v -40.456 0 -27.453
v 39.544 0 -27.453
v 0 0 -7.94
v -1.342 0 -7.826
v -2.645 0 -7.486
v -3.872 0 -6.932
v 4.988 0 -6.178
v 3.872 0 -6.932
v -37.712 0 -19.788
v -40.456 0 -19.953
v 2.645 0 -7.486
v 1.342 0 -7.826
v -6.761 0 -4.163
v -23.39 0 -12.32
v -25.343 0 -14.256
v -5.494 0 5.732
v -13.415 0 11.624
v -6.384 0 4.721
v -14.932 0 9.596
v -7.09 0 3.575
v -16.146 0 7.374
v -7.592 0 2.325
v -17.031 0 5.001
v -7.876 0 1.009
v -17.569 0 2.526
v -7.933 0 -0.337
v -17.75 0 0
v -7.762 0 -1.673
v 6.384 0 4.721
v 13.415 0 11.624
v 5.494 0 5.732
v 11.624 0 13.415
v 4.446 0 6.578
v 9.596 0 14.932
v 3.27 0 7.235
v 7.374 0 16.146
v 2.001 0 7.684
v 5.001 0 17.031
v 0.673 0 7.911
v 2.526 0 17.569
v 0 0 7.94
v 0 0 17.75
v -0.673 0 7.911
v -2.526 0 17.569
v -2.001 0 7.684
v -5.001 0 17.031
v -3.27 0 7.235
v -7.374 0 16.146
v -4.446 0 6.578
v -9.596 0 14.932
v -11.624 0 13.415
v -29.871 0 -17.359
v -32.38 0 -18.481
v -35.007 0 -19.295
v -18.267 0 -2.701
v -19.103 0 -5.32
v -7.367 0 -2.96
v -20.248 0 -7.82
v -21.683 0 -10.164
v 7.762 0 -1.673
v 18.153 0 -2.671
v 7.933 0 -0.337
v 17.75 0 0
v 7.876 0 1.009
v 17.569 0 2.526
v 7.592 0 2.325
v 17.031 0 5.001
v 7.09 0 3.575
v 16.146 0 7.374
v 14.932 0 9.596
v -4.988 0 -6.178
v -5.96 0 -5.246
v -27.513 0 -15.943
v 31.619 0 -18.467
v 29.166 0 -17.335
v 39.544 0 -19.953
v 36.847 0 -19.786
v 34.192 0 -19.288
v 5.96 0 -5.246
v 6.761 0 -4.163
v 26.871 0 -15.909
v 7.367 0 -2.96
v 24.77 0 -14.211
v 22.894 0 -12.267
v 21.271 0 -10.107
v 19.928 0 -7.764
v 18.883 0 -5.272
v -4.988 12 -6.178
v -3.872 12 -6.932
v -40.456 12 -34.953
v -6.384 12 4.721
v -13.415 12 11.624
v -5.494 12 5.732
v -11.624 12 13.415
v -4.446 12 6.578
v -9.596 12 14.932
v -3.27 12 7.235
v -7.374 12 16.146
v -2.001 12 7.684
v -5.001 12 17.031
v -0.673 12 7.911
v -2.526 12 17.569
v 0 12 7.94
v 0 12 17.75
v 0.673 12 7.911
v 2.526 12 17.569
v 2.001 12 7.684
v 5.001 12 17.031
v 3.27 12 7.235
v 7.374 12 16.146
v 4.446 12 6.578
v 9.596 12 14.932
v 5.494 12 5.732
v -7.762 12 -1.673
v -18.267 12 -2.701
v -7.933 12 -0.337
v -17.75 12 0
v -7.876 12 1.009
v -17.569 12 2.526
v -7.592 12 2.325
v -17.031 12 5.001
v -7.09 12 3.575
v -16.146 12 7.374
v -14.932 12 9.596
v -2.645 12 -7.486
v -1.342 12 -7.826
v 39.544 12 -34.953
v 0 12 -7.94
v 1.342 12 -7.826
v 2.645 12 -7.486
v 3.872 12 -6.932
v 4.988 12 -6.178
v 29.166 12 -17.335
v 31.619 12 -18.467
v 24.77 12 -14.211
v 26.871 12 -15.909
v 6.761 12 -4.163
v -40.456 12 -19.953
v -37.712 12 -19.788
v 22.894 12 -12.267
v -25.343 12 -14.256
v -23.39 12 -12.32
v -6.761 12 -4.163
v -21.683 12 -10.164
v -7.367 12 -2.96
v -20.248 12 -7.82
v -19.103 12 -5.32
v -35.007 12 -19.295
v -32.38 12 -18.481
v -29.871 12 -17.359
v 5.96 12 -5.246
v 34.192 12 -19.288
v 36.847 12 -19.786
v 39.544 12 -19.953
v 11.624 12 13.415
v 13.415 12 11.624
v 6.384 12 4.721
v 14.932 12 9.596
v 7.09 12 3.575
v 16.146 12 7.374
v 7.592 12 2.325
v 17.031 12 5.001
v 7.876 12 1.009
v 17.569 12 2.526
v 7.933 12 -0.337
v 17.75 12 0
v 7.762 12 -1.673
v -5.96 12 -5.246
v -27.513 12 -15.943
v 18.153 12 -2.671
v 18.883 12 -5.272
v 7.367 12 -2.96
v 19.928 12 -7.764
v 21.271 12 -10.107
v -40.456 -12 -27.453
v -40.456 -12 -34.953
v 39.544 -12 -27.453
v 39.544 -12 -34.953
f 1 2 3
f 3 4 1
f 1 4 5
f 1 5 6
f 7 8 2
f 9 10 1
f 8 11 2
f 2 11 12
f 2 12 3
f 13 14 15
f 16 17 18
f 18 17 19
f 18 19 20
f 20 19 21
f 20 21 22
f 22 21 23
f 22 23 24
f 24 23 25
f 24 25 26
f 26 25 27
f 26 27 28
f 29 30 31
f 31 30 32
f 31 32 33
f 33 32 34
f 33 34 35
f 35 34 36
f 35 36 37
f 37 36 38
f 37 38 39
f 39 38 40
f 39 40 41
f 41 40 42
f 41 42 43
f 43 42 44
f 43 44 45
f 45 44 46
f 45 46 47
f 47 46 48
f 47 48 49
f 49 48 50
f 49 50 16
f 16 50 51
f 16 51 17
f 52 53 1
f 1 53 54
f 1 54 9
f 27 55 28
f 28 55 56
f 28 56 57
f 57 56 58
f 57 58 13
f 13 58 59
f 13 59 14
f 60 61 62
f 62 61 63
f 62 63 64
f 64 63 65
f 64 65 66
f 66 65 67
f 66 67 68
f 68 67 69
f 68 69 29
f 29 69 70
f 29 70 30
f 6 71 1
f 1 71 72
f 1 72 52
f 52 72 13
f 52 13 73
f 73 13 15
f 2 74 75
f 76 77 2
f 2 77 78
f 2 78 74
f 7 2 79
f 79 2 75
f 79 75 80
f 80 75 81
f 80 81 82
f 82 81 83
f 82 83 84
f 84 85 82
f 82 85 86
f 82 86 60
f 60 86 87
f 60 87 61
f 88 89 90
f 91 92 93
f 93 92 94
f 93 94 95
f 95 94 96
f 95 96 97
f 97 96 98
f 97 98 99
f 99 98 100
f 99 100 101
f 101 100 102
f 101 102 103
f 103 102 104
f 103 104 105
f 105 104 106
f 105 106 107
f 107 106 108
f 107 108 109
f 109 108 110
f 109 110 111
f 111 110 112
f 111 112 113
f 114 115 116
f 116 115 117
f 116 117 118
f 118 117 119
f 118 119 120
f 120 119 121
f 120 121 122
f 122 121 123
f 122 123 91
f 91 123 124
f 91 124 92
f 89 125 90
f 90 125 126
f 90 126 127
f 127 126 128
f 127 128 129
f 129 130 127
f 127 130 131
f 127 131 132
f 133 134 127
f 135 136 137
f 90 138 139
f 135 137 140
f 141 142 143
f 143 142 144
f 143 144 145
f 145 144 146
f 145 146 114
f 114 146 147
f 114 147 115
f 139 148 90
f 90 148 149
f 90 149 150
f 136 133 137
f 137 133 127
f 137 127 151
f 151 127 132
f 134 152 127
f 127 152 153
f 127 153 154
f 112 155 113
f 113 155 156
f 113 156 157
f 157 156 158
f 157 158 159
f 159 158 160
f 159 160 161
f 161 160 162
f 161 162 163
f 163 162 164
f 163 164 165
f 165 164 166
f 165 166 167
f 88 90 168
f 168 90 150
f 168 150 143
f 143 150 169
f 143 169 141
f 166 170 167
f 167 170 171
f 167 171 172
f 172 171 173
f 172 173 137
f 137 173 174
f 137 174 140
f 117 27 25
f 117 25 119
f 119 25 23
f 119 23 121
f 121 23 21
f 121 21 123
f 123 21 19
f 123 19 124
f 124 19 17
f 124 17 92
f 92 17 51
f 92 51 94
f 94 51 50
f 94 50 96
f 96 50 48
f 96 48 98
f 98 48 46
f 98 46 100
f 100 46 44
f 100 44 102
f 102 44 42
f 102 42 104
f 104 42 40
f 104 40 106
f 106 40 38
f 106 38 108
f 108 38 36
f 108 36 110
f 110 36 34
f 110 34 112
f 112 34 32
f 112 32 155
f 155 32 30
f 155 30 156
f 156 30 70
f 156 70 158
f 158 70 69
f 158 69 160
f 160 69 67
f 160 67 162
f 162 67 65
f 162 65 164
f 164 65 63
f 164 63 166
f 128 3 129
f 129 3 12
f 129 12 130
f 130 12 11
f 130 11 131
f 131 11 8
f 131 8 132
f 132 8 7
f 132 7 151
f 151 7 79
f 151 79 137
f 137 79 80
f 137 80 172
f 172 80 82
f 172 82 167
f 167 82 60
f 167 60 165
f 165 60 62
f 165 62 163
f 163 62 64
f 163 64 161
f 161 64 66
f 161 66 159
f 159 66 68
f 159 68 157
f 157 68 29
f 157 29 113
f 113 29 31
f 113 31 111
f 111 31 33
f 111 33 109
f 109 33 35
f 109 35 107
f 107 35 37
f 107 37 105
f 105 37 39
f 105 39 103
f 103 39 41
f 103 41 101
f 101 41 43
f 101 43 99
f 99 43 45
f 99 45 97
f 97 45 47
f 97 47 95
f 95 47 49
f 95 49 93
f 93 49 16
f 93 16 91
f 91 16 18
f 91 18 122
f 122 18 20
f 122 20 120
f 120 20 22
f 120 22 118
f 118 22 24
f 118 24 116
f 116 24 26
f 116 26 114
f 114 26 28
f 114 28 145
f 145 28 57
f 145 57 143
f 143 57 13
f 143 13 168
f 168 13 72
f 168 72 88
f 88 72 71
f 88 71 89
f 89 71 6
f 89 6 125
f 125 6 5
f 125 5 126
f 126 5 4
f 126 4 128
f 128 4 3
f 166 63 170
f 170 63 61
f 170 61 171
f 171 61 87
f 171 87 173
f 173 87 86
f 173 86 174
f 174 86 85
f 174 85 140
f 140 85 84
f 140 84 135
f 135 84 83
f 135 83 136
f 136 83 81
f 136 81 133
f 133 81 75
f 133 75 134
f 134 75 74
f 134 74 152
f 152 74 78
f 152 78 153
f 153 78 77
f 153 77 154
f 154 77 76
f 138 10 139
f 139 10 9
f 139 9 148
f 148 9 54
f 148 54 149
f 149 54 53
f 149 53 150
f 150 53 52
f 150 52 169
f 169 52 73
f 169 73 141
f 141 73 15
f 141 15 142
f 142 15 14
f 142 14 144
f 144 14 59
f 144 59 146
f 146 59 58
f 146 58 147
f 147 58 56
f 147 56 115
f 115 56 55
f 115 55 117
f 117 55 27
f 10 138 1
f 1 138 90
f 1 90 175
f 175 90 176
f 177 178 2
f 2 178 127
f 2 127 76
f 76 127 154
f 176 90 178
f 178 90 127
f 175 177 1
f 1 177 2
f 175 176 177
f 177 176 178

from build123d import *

# Parameters (mm, degrees)
SKETCH1_R           = 17.75
SKETCH1_R_2         = 7.94
BOSS_EXTRUDE1_DEPTH = 12
BOSS_EXTRUDE6_DEPTH = 12
SKETCH9_W           = 80
SKETCH9_H           = 15
BOSS_EXTRUDE7_DEPTH = 12
SKETCH10_W          = 80
SKETCH10_H          = 7.5
BOSS_EXTRUDE8_DEPTH = 12


with BuildPart() as part:
    # Sketch1 → Boss-Extrude1 (new body)
    with BuildSketch(Plane(origin=(0, 0, 0), x_dir=(1, 0, 0), z_dir=(0, 1, 0))):
        with Locations(Location((0, 0, 0), (0, 0, 270))):
            Circle(SKETCH1_R)
        with Locations(Location((0, 0, 0), (0, 0, 270))):
            Circle(SKETCH1_R_2, mode=Mode.SUBTRACT)
    extrude(amount=BOSS_EXTRUDE1_DEPTH)

    # Sketch6 → Boss-Extrude6 (add)
    with BuildSketch(Plane.XZ):
        with BuildLine():
            Line((-0.456324954, -19.952681815), (-40.456324954, -19.952681815))
            ThreePointArc((-40.456324954, -19.952681815), (-25.342699441, -14.255780456), (-17.75, 0))
            ThreePointArc((-17.75, 0), (0, -17.75), (17.75, 0))
            ThreePointArc((17.75, 0), (24.769764057, -14.21114403), (39.543675046, -19.952681815))
            Line((39.543675046, -19.952681815), (-0.456324954, -19.952681815))
        make_face()
    extrude(amount=-BOSS_EXTRUDE6_DEPTH)

    # Sketch9 → Boss-Extrude7 (add)
    with BuildSketch(Plane(origin=(0, 0, 0), x_dir=(-1, 0, 0), z_dir=(0, -1, 0))):
        with Locations((0.456324954, 27.452681815)):
            Rectangle(SKETCH9_W, SKETCH9_H)
    extrude(amount=-BOSS_EXTRUDE7_DEPTH)

    # Sketch10 → Boss-Extrude8 (add)
    with BuildSketch(Plane.XZ):
        with Locations((-0.456324954, -31.202681815)):
            Rectangle(SKETCH10_W, SKETCH10_H)
    extrude(amount=BOSS_EXTRUDE8_DEPTH)


solid = part.part
